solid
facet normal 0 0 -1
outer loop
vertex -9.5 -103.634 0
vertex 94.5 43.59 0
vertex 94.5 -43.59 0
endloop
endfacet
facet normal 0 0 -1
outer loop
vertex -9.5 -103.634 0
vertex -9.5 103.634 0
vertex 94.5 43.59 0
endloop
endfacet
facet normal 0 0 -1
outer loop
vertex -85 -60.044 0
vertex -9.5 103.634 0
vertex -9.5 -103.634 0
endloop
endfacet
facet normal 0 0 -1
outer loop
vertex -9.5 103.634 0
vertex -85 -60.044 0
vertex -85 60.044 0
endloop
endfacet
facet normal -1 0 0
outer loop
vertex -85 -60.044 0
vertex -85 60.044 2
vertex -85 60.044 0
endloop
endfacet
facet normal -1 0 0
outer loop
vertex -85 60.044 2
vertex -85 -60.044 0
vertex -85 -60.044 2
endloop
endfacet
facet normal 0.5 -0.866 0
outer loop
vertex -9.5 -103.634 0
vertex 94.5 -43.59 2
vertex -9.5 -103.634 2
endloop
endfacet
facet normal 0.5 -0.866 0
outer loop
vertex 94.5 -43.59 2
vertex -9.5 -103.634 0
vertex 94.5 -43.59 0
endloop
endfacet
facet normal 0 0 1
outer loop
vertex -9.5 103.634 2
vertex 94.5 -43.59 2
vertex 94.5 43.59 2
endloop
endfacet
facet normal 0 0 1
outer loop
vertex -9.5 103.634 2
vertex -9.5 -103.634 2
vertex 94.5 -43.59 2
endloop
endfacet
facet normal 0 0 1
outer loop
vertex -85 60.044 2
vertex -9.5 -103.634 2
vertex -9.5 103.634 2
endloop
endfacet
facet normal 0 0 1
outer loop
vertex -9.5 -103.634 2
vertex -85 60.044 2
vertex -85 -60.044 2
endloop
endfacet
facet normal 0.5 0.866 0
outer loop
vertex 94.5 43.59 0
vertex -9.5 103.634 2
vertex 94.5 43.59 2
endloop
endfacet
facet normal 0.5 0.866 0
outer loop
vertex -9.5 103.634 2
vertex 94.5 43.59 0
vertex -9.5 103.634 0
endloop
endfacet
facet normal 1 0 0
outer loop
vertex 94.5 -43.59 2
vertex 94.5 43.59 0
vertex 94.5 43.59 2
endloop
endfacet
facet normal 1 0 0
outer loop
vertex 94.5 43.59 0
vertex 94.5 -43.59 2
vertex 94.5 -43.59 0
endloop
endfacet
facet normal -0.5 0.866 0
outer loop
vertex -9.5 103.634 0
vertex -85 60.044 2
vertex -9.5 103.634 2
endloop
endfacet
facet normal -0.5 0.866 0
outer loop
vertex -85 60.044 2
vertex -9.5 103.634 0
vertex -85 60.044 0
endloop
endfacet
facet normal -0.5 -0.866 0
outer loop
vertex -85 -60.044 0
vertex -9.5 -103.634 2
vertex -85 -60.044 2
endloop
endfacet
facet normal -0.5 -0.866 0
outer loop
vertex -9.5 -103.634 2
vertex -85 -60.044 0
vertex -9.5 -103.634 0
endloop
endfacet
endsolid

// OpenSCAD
$fs = .2;
$fa = 2;
module triangle(side, thickness) {
 radius = 2 * side * cos(60);
 x0 = radius * cos(0);
 y0 = radius * sin(0);
 x1 = radius * cos(120);
 y1 = radius * sin(120);
 x2 = radius * cos(240);
 y2 = radius * sin(240);
 linear_extrude(height=thickness) {
   polygon(points=[[x0,y0],[x1,y1], [x2,y2]]);
 }
}

board_len = 80;
board_wid = 50;
board_thk = 1;
standoff_hgt = 6;
standoff_rad = 2.5;
mnt_hgt = 2.5;
mnt_rad = 1;
base_thk = 2;
base_side = 170;

servo_cc =  38;
servo_wid = 12;
trim_side = servo_cc + servo_wid;

module servos(x) {
    translate([x, 30,board_thk]) cube([20, 12,25]);
    translate([x,-37,board_thk]) cube([20, 12,25]);
}

module standoff(x,y) {
  translate([x,y,0]) {
    cylinder(standoff_hgt, standoff_rad,standoff_rad);
    cylinder(standoff_hgt+mnt_hgt, mnt_rad, mnt_rad);
  }
}

module arduino() {
    translate([-40,-25,0]) {
  //      translate([0,0,standoff_hgt]) 
  //         cube([board_len,board_wid,board_thk]);
        standoff(3,11);             // ok
        standoff(3,board_wid-11);   // 31 ok
        standoff(board_len-3,board_wid-3); // 33 -> 44
        standoff(board_len-3, 3);   //10
    }
}

difference() {
 triangle(base_side,base_thk);
 translate([base_side-trim_side,0,-1]) 
    triangle(trim_side+1,base_thk+2);
 rotate([0,0,120]) 
    translate([base_side-trim_side,,0,-1]) 
    triangle(trim_side+1,base_thk+2);
 rotate([0,0,240]) 
    translate([base_side-trim_side,,0,-1]) 
    triangle(trim_side+1,base_thk+2);
}
//translate([0,0,base_thk]) color("red") arduino();
                  //color("green") servos(74.3);
//rotate([0,0,120]) color("green") servos(74.3);
//rotate([0,0,240]) color("green") servos(74.3);
